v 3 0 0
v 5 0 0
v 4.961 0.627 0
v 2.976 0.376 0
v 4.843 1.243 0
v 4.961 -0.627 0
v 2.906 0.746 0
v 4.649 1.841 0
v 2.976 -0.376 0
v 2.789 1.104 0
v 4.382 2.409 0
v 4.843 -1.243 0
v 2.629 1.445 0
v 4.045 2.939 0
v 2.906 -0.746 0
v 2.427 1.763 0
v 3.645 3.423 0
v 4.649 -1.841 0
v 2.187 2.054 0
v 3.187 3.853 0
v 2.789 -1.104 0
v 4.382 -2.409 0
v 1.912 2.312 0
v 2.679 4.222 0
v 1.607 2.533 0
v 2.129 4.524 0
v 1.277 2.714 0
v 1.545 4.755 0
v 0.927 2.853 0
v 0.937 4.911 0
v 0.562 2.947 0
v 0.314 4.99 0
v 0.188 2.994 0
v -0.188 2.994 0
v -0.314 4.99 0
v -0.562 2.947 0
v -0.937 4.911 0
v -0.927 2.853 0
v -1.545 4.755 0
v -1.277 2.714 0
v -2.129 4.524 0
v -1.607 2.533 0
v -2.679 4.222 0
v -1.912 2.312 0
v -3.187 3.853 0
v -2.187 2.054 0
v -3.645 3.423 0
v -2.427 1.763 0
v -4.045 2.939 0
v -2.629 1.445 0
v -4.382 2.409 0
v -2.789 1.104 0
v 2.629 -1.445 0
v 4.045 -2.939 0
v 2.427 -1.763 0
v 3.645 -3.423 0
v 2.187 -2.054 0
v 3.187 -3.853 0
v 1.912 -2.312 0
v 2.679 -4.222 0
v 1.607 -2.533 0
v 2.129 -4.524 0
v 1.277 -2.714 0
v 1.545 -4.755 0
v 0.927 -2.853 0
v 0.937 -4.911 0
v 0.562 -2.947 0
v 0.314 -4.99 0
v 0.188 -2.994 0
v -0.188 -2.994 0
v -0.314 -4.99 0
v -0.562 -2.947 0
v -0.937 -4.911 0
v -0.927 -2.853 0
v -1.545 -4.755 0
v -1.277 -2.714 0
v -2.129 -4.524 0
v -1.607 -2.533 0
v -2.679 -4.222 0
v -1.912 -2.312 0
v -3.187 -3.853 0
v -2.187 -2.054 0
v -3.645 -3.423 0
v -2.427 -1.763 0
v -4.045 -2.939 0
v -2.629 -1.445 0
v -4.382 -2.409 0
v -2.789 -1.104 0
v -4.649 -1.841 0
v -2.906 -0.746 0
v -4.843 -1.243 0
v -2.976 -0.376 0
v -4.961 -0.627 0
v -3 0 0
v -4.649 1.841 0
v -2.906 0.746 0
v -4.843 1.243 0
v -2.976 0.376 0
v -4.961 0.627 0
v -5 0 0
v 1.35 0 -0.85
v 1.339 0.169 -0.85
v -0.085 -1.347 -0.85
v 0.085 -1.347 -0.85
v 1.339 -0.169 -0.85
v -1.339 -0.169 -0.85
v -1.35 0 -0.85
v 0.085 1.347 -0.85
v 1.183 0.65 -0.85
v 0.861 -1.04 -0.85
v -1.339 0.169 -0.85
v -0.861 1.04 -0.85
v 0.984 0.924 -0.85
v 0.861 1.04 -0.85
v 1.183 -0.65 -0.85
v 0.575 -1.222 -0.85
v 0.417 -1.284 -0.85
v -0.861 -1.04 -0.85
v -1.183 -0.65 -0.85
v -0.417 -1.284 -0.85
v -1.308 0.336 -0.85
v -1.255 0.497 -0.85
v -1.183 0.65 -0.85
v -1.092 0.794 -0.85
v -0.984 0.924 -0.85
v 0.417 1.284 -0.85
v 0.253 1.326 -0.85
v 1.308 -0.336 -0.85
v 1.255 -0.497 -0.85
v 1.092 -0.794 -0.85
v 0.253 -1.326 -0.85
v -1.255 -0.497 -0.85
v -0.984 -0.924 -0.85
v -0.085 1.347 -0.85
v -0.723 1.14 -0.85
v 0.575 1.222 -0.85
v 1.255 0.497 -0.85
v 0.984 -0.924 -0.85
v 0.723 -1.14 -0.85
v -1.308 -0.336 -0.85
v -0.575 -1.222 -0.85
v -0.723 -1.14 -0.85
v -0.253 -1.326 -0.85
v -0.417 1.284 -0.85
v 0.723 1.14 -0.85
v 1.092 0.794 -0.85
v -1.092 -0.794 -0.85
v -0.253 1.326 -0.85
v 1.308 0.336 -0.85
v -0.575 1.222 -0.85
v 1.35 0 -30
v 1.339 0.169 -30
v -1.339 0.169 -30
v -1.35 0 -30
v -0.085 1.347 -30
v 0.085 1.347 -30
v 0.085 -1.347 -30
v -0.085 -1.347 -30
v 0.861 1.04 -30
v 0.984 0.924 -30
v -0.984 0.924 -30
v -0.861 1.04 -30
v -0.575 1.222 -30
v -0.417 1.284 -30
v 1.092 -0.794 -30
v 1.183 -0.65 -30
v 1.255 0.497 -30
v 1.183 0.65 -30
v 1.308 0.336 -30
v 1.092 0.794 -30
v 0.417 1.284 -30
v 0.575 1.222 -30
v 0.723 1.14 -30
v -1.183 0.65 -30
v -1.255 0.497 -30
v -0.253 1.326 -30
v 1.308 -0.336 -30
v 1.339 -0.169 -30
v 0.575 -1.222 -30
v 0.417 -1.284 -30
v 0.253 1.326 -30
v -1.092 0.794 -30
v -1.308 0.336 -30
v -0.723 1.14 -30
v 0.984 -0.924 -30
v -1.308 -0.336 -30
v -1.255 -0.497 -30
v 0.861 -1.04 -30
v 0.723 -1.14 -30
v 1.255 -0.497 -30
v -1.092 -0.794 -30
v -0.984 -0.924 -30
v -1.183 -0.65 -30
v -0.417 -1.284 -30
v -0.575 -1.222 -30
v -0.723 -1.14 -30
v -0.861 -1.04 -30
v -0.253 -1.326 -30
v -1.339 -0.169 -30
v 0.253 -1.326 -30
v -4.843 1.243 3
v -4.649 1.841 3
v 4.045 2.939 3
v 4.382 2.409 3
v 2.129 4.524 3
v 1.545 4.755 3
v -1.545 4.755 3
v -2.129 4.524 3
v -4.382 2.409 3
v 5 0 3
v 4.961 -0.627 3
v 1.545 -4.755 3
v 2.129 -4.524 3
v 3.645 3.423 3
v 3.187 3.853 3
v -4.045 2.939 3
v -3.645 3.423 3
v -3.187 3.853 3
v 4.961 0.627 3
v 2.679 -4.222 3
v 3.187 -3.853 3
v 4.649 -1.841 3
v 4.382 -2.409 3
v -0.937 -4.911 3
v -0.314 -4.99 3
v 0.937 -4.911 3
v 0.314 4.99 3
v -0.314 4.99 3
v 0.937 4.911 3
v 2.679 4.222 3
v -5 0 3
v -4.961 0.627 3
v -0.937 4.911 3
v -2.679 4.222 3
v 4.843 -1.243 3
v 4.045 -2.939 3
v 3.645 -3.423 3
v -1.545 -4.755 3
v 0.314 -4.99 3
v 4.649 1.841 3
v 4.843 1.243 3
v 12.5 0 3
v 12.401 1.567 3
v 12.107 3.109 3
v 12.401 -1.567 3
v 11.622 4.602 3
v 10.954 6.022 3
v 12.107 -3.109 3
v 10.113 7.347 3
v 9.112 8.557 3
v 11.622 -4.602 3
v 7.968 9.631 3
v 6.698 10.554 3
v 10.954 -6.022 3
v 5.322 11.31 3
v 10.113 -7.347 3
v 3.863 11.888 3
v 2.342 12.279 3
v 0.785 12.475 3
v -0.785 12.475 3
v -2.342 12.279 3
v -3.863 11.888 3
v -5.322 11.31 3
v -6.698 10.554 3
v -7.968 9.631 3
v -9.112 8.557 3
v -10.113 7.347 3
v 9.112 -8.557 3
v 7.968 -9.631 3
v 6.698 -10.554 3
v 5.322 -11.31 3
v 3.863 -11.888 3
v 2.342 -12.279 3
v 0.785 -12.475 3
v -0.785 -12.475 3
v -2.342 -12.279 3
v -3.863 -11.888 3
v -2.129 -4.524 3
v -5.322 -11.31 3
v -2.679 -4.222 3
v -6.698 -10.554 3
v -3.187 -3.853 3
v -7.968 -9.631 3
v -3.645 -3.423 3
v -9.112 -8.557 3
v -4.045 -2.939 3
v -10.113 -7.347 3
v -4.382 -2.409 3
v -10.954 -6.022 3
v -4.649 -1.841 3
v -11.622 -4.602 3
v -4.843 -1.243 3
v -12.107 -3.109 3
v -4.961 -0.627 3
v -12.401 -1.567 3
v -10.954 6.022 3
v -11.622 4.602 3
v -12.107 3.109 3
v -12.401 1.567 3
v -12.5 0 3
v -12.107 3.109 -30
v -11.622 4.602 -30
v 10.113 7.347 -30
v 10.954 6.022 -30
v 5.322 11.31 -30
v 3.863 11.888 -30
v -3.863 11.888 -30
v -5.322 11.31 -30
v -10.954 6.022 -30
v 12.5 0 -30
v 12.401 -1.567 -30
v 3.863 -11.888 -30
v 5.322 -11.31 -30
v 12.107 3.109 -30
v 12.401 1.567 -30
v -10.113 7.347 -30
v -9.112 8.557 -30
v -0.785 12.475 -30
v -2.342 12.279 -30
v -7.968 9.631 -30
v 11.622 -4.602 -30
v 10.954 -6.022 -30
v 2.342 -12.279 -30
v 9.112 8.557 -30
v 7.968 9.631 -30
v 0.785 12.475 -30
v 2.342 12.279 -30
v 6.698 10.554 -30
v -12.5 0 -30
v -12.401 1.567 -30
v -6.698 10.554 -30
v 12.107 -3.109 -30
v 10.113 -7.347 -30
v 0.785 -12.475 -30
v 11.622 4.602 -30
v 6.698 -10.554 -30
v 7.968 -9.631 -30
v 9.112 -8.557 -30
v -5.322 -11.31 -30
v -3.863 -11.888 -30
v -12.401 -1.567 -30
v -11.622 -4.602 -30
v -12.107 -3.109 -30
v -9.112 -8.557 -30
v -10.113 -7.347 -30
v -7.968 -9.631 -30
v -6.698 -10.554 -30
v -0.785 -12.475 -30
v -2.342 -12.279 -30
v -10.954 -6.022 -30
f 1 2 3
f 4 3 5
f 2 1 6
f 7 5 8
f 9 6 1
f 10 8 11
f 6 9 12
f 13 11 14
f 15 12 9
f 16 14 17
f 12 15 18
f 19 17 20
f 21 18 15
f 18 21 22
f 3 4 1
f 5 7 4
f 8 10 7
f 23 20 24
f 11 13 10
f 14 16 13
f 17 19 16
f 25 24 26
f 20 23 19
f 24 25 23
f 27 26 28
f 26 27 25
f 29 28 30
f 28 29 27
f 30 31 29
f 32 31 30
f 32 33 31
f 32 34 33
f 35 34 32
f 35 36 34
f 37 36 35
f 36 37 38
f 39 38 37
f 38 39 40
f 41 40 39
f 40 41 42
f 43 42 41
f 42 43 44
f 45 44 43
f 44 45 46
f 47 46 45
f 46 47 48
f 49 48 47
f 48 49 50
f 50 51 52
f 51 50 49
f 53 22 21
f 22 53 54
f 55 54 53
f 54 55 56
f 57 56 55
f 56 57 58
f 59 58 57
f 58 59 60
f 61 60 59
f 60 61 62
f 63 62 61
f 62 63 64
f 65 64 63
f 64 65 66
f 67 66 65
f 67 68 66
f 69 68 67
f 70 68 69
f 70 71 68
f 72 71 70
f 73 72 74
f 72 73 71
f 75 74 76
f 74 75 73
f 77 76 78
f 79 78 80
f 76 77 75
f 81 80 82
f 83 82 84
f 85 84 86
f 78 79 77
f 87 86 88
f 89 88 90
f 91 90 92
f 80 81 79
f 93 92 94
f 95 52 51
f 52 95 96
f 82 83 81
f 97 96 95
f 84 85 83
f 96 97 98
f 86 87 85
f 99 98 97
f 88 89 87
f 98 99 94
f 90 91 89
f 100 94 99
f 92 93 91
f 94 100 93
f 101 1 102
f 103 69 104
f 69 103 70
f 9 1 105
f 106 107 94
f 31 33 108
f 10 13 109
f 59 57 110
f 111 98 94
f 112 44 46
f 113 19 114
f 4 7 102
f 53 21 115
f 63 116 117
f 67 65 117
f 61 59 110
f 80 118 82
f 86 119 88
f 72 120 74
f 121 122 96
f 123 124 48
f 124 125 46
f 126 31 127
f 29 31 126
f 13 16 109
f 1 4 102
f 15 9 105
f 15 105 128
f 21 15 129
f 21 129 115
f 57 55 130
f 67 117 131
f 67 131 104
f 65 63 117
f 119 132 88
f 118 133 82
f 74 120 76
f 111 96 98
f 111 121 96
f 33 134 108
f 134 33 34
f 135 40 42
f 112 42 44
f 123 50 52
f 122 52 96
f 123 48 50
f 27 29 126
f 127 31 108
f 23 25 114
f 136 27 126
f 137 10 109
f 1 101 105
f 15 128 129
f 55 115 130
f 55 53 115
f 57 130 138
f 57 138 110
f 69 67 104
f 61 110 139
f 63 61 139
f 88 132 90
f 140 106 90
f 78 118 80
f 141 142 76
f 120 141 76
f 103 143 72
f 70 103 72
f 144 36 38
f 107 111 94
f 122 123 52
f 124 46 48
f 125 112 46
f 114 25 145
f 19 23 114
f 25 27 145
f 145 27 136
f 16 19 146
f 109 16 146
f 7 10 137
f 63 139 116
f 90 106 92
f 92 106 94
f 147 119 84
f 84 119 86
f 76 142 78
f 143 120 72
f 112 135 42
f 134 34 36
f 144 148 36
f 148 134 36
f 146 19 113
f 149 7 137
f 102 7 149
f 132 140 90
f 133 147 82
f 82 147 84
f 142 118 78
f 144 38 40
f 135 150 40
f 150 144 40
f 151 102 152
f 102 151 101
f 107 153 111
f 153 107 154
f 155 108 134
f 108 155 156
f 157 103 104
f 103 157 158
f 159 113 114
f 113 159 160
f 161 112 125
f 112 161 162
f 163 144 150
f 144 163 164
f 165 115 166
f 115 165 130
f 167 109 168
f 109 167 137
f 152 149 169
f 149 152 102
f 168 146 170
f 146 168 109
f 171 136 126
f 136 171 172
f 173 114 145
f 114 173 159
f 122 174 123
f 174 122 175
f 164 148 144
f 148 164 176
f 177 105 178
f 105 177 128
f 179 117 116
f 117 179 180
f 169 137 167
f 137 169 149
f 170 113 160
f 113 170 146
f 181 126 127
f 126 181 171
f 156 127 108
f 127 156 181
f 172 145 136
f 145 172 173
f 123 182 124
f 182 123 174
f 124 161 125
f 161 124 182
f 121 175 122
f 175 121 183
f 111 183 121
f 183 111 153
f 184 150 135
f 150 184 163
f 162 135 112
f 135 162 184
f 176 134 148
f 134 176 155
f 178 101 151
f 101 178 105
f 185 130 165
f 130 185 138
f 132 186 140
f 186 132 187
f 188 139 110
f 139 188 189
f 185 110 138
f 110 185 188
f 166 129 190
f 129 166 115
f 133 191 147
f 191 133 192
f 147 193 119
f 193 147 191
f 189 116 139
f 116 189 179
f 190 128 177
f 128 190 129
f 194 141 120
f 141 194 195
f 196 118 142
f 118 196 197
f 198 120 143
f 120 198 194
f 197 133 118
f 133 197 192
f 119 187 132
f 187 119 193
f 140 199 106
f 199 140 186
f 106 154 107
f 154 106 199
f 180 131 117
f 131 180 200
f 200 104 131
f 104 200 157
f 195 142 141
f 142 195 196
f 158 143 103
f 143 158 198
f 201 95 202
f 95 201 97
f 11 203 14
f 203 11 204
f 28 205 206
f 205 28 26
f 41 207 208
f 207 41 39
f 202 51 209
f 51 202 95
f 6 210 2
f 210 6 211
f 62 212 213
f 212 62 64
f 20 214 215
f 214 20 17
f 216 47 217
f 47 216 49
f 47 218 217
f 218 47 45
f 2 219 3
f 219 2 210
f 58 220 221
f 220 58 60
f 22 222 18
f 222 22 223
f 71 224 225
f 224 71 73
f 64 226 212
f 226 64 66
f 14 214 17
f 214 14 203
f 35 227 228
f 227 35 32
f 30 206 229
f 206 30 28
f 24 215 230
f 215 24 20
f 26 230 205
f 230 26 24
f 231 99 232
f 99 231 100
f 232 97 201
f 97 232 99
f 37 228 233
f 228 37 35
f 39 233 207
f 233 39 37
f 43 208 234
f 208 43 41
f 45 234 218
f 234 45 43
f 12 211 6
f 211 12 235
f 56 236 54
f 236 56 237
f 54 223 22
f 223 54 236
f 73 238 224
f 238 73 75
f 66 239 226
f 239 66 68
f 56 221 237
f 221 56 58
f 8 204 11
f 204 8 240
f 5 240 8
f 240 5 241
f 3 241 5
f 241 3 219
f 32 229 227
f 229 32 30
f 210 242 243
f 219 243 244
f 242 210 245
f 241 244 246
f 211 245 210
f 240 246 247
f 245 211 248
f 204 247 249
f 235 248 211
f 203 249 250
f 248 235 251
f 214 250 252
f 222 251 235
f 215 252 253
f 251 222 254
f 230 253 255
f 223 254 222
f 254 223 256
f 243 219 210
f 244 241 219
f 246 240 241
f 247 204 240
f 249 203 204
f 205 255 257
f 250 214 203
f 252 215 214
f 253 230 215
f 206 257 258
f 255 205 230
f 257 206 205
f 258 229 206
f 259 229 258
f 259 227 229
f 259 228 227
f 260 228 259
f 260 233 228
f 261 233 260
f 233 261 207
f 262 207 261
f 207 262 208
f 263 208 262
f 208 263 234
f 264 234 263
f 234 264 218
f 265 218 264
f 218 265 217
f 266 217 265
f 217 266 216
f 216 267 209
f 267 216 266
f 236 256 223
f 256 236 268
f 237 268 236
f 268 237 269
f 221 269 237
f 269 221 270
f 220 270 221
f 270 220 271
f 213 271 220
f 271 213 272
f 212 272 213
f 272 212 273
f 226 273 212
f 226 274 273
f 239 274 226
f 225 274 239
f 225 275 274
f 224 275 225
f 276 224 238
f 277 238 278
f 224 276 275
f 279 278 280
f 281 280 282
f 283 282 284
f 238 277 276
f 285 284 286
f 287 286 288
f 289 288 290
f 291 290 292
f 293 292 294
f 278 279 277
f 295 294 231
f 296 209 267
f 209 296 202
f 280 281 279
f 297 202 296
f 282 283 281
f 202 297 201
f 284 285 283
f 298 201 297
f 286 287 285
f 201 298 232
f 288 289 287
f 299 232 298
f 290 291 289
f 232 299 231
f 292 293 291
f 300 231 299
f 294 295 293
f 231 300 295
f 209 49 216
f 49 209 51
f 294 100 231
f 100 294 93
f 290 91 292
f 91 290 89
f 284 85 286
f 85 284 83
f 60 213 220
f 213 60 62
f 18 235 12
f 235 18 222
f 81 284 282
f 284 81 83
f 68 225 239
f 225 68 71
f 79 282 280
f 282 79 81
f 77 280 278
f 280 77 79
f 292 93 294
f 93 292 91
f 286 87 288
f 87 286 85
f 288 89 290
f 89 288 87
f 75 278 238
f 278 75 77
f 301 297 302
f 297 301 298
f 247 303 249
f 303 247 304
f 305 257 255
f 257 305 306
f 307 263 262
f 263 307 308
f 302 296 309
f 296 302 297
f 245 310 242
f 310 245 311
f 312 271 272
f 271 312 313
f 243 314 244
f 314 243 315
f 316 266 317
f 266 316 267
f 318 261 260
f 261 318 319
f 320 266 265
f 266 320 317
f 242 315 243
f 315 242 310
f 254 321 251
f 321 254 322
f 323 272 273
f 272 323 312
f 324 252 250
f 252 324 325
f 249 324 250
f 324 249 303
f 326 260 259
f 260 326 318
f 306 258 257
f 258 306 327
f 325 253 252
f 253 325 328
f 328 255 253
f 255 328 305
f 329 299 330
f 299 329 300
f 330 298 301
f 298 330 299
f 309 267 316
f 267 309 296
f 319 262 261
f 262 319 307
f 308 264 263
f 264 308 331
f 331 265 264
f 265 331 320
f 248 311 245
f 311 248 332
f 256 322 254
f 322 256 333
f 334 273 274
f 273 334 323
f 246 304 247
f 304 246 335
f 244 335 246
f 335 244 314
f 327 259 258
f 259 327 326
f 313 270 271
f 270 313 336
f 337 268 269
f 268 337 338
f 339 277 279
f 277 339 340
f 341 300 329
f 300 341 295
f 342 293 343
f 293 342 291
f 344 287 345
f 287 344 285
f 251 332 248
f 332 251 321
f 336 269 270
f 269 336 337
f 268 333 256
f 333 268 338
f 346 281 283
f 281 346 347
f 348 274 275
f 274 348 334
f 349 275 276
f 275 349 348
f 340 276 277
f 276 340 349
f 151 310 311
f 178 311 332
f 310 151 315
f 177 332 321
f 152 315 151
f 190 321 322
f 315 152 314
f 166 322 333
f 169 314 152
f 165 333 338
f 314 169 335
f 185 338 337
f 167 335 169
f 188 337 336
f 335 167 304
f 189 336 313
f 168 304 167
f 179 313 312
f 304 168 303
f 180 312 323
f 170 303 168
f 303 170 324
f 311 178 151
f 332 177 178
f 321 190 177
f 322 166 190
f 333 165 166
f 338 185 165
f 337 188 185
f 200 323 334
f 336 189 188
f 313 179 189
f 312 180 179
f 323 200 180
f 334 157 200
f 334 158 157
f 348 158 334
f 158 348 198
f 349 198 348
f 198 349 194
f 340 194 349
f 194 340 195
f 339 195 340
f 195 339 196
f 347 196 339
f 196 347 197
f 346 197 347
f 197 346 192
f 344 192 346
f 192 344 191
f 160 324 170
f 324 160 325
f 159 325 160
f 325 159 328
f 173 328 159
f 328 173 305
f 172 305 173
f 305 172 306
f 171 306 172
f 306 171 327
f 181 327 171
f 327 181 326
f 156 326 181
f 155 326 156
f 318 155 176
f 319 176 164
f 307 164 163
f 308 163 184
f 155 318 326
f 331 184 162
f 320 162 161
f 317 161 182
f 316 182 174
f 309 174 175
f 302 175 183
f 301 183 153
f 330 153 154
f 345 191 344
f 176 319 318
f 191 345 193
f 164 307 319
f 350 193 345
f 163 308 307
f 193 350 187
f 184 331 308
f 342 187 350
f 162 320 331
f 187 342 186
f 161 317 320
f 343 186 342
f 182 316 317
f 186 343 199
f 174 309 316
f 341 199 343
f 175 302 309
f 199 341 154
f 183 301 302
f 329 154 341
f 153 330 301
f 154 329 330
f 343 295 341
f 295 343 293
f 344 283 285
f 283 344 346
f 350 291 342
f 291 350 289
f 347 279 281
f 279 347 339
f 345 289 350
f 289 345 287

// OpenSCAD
$fn = 50;

difference() {
	union() {
		translate(v = [0, 0, -30.0]) {
			cylinder(h = 33, r = 12.5);
		}
	}
	union() {
		translate(v = [0, 0, 0]) {
			rotate(a = [0, 0, 0]) {
				difference() {
					union() {
						translate(v = [0, 0, -33.0]) {
							cylinder(h = 33, r = 1.0);
						}
						translate(v = [0, 0, -0.85]) {
							cylinder(h = 0.85, r1 = 1.35, r2 = 3.0);
						}
						translate(v = [0, 0, -33.0]) {
							cylinder(h = 33, r = 1.35);
						}
						translate(v = [0, 0, -33.0]) {
							cylinder(h = 33, r = 1.0);
						}
					}
					union();
				}
			}
		}
		#cylinder(h = 3, r = 5.0);
	}
}
